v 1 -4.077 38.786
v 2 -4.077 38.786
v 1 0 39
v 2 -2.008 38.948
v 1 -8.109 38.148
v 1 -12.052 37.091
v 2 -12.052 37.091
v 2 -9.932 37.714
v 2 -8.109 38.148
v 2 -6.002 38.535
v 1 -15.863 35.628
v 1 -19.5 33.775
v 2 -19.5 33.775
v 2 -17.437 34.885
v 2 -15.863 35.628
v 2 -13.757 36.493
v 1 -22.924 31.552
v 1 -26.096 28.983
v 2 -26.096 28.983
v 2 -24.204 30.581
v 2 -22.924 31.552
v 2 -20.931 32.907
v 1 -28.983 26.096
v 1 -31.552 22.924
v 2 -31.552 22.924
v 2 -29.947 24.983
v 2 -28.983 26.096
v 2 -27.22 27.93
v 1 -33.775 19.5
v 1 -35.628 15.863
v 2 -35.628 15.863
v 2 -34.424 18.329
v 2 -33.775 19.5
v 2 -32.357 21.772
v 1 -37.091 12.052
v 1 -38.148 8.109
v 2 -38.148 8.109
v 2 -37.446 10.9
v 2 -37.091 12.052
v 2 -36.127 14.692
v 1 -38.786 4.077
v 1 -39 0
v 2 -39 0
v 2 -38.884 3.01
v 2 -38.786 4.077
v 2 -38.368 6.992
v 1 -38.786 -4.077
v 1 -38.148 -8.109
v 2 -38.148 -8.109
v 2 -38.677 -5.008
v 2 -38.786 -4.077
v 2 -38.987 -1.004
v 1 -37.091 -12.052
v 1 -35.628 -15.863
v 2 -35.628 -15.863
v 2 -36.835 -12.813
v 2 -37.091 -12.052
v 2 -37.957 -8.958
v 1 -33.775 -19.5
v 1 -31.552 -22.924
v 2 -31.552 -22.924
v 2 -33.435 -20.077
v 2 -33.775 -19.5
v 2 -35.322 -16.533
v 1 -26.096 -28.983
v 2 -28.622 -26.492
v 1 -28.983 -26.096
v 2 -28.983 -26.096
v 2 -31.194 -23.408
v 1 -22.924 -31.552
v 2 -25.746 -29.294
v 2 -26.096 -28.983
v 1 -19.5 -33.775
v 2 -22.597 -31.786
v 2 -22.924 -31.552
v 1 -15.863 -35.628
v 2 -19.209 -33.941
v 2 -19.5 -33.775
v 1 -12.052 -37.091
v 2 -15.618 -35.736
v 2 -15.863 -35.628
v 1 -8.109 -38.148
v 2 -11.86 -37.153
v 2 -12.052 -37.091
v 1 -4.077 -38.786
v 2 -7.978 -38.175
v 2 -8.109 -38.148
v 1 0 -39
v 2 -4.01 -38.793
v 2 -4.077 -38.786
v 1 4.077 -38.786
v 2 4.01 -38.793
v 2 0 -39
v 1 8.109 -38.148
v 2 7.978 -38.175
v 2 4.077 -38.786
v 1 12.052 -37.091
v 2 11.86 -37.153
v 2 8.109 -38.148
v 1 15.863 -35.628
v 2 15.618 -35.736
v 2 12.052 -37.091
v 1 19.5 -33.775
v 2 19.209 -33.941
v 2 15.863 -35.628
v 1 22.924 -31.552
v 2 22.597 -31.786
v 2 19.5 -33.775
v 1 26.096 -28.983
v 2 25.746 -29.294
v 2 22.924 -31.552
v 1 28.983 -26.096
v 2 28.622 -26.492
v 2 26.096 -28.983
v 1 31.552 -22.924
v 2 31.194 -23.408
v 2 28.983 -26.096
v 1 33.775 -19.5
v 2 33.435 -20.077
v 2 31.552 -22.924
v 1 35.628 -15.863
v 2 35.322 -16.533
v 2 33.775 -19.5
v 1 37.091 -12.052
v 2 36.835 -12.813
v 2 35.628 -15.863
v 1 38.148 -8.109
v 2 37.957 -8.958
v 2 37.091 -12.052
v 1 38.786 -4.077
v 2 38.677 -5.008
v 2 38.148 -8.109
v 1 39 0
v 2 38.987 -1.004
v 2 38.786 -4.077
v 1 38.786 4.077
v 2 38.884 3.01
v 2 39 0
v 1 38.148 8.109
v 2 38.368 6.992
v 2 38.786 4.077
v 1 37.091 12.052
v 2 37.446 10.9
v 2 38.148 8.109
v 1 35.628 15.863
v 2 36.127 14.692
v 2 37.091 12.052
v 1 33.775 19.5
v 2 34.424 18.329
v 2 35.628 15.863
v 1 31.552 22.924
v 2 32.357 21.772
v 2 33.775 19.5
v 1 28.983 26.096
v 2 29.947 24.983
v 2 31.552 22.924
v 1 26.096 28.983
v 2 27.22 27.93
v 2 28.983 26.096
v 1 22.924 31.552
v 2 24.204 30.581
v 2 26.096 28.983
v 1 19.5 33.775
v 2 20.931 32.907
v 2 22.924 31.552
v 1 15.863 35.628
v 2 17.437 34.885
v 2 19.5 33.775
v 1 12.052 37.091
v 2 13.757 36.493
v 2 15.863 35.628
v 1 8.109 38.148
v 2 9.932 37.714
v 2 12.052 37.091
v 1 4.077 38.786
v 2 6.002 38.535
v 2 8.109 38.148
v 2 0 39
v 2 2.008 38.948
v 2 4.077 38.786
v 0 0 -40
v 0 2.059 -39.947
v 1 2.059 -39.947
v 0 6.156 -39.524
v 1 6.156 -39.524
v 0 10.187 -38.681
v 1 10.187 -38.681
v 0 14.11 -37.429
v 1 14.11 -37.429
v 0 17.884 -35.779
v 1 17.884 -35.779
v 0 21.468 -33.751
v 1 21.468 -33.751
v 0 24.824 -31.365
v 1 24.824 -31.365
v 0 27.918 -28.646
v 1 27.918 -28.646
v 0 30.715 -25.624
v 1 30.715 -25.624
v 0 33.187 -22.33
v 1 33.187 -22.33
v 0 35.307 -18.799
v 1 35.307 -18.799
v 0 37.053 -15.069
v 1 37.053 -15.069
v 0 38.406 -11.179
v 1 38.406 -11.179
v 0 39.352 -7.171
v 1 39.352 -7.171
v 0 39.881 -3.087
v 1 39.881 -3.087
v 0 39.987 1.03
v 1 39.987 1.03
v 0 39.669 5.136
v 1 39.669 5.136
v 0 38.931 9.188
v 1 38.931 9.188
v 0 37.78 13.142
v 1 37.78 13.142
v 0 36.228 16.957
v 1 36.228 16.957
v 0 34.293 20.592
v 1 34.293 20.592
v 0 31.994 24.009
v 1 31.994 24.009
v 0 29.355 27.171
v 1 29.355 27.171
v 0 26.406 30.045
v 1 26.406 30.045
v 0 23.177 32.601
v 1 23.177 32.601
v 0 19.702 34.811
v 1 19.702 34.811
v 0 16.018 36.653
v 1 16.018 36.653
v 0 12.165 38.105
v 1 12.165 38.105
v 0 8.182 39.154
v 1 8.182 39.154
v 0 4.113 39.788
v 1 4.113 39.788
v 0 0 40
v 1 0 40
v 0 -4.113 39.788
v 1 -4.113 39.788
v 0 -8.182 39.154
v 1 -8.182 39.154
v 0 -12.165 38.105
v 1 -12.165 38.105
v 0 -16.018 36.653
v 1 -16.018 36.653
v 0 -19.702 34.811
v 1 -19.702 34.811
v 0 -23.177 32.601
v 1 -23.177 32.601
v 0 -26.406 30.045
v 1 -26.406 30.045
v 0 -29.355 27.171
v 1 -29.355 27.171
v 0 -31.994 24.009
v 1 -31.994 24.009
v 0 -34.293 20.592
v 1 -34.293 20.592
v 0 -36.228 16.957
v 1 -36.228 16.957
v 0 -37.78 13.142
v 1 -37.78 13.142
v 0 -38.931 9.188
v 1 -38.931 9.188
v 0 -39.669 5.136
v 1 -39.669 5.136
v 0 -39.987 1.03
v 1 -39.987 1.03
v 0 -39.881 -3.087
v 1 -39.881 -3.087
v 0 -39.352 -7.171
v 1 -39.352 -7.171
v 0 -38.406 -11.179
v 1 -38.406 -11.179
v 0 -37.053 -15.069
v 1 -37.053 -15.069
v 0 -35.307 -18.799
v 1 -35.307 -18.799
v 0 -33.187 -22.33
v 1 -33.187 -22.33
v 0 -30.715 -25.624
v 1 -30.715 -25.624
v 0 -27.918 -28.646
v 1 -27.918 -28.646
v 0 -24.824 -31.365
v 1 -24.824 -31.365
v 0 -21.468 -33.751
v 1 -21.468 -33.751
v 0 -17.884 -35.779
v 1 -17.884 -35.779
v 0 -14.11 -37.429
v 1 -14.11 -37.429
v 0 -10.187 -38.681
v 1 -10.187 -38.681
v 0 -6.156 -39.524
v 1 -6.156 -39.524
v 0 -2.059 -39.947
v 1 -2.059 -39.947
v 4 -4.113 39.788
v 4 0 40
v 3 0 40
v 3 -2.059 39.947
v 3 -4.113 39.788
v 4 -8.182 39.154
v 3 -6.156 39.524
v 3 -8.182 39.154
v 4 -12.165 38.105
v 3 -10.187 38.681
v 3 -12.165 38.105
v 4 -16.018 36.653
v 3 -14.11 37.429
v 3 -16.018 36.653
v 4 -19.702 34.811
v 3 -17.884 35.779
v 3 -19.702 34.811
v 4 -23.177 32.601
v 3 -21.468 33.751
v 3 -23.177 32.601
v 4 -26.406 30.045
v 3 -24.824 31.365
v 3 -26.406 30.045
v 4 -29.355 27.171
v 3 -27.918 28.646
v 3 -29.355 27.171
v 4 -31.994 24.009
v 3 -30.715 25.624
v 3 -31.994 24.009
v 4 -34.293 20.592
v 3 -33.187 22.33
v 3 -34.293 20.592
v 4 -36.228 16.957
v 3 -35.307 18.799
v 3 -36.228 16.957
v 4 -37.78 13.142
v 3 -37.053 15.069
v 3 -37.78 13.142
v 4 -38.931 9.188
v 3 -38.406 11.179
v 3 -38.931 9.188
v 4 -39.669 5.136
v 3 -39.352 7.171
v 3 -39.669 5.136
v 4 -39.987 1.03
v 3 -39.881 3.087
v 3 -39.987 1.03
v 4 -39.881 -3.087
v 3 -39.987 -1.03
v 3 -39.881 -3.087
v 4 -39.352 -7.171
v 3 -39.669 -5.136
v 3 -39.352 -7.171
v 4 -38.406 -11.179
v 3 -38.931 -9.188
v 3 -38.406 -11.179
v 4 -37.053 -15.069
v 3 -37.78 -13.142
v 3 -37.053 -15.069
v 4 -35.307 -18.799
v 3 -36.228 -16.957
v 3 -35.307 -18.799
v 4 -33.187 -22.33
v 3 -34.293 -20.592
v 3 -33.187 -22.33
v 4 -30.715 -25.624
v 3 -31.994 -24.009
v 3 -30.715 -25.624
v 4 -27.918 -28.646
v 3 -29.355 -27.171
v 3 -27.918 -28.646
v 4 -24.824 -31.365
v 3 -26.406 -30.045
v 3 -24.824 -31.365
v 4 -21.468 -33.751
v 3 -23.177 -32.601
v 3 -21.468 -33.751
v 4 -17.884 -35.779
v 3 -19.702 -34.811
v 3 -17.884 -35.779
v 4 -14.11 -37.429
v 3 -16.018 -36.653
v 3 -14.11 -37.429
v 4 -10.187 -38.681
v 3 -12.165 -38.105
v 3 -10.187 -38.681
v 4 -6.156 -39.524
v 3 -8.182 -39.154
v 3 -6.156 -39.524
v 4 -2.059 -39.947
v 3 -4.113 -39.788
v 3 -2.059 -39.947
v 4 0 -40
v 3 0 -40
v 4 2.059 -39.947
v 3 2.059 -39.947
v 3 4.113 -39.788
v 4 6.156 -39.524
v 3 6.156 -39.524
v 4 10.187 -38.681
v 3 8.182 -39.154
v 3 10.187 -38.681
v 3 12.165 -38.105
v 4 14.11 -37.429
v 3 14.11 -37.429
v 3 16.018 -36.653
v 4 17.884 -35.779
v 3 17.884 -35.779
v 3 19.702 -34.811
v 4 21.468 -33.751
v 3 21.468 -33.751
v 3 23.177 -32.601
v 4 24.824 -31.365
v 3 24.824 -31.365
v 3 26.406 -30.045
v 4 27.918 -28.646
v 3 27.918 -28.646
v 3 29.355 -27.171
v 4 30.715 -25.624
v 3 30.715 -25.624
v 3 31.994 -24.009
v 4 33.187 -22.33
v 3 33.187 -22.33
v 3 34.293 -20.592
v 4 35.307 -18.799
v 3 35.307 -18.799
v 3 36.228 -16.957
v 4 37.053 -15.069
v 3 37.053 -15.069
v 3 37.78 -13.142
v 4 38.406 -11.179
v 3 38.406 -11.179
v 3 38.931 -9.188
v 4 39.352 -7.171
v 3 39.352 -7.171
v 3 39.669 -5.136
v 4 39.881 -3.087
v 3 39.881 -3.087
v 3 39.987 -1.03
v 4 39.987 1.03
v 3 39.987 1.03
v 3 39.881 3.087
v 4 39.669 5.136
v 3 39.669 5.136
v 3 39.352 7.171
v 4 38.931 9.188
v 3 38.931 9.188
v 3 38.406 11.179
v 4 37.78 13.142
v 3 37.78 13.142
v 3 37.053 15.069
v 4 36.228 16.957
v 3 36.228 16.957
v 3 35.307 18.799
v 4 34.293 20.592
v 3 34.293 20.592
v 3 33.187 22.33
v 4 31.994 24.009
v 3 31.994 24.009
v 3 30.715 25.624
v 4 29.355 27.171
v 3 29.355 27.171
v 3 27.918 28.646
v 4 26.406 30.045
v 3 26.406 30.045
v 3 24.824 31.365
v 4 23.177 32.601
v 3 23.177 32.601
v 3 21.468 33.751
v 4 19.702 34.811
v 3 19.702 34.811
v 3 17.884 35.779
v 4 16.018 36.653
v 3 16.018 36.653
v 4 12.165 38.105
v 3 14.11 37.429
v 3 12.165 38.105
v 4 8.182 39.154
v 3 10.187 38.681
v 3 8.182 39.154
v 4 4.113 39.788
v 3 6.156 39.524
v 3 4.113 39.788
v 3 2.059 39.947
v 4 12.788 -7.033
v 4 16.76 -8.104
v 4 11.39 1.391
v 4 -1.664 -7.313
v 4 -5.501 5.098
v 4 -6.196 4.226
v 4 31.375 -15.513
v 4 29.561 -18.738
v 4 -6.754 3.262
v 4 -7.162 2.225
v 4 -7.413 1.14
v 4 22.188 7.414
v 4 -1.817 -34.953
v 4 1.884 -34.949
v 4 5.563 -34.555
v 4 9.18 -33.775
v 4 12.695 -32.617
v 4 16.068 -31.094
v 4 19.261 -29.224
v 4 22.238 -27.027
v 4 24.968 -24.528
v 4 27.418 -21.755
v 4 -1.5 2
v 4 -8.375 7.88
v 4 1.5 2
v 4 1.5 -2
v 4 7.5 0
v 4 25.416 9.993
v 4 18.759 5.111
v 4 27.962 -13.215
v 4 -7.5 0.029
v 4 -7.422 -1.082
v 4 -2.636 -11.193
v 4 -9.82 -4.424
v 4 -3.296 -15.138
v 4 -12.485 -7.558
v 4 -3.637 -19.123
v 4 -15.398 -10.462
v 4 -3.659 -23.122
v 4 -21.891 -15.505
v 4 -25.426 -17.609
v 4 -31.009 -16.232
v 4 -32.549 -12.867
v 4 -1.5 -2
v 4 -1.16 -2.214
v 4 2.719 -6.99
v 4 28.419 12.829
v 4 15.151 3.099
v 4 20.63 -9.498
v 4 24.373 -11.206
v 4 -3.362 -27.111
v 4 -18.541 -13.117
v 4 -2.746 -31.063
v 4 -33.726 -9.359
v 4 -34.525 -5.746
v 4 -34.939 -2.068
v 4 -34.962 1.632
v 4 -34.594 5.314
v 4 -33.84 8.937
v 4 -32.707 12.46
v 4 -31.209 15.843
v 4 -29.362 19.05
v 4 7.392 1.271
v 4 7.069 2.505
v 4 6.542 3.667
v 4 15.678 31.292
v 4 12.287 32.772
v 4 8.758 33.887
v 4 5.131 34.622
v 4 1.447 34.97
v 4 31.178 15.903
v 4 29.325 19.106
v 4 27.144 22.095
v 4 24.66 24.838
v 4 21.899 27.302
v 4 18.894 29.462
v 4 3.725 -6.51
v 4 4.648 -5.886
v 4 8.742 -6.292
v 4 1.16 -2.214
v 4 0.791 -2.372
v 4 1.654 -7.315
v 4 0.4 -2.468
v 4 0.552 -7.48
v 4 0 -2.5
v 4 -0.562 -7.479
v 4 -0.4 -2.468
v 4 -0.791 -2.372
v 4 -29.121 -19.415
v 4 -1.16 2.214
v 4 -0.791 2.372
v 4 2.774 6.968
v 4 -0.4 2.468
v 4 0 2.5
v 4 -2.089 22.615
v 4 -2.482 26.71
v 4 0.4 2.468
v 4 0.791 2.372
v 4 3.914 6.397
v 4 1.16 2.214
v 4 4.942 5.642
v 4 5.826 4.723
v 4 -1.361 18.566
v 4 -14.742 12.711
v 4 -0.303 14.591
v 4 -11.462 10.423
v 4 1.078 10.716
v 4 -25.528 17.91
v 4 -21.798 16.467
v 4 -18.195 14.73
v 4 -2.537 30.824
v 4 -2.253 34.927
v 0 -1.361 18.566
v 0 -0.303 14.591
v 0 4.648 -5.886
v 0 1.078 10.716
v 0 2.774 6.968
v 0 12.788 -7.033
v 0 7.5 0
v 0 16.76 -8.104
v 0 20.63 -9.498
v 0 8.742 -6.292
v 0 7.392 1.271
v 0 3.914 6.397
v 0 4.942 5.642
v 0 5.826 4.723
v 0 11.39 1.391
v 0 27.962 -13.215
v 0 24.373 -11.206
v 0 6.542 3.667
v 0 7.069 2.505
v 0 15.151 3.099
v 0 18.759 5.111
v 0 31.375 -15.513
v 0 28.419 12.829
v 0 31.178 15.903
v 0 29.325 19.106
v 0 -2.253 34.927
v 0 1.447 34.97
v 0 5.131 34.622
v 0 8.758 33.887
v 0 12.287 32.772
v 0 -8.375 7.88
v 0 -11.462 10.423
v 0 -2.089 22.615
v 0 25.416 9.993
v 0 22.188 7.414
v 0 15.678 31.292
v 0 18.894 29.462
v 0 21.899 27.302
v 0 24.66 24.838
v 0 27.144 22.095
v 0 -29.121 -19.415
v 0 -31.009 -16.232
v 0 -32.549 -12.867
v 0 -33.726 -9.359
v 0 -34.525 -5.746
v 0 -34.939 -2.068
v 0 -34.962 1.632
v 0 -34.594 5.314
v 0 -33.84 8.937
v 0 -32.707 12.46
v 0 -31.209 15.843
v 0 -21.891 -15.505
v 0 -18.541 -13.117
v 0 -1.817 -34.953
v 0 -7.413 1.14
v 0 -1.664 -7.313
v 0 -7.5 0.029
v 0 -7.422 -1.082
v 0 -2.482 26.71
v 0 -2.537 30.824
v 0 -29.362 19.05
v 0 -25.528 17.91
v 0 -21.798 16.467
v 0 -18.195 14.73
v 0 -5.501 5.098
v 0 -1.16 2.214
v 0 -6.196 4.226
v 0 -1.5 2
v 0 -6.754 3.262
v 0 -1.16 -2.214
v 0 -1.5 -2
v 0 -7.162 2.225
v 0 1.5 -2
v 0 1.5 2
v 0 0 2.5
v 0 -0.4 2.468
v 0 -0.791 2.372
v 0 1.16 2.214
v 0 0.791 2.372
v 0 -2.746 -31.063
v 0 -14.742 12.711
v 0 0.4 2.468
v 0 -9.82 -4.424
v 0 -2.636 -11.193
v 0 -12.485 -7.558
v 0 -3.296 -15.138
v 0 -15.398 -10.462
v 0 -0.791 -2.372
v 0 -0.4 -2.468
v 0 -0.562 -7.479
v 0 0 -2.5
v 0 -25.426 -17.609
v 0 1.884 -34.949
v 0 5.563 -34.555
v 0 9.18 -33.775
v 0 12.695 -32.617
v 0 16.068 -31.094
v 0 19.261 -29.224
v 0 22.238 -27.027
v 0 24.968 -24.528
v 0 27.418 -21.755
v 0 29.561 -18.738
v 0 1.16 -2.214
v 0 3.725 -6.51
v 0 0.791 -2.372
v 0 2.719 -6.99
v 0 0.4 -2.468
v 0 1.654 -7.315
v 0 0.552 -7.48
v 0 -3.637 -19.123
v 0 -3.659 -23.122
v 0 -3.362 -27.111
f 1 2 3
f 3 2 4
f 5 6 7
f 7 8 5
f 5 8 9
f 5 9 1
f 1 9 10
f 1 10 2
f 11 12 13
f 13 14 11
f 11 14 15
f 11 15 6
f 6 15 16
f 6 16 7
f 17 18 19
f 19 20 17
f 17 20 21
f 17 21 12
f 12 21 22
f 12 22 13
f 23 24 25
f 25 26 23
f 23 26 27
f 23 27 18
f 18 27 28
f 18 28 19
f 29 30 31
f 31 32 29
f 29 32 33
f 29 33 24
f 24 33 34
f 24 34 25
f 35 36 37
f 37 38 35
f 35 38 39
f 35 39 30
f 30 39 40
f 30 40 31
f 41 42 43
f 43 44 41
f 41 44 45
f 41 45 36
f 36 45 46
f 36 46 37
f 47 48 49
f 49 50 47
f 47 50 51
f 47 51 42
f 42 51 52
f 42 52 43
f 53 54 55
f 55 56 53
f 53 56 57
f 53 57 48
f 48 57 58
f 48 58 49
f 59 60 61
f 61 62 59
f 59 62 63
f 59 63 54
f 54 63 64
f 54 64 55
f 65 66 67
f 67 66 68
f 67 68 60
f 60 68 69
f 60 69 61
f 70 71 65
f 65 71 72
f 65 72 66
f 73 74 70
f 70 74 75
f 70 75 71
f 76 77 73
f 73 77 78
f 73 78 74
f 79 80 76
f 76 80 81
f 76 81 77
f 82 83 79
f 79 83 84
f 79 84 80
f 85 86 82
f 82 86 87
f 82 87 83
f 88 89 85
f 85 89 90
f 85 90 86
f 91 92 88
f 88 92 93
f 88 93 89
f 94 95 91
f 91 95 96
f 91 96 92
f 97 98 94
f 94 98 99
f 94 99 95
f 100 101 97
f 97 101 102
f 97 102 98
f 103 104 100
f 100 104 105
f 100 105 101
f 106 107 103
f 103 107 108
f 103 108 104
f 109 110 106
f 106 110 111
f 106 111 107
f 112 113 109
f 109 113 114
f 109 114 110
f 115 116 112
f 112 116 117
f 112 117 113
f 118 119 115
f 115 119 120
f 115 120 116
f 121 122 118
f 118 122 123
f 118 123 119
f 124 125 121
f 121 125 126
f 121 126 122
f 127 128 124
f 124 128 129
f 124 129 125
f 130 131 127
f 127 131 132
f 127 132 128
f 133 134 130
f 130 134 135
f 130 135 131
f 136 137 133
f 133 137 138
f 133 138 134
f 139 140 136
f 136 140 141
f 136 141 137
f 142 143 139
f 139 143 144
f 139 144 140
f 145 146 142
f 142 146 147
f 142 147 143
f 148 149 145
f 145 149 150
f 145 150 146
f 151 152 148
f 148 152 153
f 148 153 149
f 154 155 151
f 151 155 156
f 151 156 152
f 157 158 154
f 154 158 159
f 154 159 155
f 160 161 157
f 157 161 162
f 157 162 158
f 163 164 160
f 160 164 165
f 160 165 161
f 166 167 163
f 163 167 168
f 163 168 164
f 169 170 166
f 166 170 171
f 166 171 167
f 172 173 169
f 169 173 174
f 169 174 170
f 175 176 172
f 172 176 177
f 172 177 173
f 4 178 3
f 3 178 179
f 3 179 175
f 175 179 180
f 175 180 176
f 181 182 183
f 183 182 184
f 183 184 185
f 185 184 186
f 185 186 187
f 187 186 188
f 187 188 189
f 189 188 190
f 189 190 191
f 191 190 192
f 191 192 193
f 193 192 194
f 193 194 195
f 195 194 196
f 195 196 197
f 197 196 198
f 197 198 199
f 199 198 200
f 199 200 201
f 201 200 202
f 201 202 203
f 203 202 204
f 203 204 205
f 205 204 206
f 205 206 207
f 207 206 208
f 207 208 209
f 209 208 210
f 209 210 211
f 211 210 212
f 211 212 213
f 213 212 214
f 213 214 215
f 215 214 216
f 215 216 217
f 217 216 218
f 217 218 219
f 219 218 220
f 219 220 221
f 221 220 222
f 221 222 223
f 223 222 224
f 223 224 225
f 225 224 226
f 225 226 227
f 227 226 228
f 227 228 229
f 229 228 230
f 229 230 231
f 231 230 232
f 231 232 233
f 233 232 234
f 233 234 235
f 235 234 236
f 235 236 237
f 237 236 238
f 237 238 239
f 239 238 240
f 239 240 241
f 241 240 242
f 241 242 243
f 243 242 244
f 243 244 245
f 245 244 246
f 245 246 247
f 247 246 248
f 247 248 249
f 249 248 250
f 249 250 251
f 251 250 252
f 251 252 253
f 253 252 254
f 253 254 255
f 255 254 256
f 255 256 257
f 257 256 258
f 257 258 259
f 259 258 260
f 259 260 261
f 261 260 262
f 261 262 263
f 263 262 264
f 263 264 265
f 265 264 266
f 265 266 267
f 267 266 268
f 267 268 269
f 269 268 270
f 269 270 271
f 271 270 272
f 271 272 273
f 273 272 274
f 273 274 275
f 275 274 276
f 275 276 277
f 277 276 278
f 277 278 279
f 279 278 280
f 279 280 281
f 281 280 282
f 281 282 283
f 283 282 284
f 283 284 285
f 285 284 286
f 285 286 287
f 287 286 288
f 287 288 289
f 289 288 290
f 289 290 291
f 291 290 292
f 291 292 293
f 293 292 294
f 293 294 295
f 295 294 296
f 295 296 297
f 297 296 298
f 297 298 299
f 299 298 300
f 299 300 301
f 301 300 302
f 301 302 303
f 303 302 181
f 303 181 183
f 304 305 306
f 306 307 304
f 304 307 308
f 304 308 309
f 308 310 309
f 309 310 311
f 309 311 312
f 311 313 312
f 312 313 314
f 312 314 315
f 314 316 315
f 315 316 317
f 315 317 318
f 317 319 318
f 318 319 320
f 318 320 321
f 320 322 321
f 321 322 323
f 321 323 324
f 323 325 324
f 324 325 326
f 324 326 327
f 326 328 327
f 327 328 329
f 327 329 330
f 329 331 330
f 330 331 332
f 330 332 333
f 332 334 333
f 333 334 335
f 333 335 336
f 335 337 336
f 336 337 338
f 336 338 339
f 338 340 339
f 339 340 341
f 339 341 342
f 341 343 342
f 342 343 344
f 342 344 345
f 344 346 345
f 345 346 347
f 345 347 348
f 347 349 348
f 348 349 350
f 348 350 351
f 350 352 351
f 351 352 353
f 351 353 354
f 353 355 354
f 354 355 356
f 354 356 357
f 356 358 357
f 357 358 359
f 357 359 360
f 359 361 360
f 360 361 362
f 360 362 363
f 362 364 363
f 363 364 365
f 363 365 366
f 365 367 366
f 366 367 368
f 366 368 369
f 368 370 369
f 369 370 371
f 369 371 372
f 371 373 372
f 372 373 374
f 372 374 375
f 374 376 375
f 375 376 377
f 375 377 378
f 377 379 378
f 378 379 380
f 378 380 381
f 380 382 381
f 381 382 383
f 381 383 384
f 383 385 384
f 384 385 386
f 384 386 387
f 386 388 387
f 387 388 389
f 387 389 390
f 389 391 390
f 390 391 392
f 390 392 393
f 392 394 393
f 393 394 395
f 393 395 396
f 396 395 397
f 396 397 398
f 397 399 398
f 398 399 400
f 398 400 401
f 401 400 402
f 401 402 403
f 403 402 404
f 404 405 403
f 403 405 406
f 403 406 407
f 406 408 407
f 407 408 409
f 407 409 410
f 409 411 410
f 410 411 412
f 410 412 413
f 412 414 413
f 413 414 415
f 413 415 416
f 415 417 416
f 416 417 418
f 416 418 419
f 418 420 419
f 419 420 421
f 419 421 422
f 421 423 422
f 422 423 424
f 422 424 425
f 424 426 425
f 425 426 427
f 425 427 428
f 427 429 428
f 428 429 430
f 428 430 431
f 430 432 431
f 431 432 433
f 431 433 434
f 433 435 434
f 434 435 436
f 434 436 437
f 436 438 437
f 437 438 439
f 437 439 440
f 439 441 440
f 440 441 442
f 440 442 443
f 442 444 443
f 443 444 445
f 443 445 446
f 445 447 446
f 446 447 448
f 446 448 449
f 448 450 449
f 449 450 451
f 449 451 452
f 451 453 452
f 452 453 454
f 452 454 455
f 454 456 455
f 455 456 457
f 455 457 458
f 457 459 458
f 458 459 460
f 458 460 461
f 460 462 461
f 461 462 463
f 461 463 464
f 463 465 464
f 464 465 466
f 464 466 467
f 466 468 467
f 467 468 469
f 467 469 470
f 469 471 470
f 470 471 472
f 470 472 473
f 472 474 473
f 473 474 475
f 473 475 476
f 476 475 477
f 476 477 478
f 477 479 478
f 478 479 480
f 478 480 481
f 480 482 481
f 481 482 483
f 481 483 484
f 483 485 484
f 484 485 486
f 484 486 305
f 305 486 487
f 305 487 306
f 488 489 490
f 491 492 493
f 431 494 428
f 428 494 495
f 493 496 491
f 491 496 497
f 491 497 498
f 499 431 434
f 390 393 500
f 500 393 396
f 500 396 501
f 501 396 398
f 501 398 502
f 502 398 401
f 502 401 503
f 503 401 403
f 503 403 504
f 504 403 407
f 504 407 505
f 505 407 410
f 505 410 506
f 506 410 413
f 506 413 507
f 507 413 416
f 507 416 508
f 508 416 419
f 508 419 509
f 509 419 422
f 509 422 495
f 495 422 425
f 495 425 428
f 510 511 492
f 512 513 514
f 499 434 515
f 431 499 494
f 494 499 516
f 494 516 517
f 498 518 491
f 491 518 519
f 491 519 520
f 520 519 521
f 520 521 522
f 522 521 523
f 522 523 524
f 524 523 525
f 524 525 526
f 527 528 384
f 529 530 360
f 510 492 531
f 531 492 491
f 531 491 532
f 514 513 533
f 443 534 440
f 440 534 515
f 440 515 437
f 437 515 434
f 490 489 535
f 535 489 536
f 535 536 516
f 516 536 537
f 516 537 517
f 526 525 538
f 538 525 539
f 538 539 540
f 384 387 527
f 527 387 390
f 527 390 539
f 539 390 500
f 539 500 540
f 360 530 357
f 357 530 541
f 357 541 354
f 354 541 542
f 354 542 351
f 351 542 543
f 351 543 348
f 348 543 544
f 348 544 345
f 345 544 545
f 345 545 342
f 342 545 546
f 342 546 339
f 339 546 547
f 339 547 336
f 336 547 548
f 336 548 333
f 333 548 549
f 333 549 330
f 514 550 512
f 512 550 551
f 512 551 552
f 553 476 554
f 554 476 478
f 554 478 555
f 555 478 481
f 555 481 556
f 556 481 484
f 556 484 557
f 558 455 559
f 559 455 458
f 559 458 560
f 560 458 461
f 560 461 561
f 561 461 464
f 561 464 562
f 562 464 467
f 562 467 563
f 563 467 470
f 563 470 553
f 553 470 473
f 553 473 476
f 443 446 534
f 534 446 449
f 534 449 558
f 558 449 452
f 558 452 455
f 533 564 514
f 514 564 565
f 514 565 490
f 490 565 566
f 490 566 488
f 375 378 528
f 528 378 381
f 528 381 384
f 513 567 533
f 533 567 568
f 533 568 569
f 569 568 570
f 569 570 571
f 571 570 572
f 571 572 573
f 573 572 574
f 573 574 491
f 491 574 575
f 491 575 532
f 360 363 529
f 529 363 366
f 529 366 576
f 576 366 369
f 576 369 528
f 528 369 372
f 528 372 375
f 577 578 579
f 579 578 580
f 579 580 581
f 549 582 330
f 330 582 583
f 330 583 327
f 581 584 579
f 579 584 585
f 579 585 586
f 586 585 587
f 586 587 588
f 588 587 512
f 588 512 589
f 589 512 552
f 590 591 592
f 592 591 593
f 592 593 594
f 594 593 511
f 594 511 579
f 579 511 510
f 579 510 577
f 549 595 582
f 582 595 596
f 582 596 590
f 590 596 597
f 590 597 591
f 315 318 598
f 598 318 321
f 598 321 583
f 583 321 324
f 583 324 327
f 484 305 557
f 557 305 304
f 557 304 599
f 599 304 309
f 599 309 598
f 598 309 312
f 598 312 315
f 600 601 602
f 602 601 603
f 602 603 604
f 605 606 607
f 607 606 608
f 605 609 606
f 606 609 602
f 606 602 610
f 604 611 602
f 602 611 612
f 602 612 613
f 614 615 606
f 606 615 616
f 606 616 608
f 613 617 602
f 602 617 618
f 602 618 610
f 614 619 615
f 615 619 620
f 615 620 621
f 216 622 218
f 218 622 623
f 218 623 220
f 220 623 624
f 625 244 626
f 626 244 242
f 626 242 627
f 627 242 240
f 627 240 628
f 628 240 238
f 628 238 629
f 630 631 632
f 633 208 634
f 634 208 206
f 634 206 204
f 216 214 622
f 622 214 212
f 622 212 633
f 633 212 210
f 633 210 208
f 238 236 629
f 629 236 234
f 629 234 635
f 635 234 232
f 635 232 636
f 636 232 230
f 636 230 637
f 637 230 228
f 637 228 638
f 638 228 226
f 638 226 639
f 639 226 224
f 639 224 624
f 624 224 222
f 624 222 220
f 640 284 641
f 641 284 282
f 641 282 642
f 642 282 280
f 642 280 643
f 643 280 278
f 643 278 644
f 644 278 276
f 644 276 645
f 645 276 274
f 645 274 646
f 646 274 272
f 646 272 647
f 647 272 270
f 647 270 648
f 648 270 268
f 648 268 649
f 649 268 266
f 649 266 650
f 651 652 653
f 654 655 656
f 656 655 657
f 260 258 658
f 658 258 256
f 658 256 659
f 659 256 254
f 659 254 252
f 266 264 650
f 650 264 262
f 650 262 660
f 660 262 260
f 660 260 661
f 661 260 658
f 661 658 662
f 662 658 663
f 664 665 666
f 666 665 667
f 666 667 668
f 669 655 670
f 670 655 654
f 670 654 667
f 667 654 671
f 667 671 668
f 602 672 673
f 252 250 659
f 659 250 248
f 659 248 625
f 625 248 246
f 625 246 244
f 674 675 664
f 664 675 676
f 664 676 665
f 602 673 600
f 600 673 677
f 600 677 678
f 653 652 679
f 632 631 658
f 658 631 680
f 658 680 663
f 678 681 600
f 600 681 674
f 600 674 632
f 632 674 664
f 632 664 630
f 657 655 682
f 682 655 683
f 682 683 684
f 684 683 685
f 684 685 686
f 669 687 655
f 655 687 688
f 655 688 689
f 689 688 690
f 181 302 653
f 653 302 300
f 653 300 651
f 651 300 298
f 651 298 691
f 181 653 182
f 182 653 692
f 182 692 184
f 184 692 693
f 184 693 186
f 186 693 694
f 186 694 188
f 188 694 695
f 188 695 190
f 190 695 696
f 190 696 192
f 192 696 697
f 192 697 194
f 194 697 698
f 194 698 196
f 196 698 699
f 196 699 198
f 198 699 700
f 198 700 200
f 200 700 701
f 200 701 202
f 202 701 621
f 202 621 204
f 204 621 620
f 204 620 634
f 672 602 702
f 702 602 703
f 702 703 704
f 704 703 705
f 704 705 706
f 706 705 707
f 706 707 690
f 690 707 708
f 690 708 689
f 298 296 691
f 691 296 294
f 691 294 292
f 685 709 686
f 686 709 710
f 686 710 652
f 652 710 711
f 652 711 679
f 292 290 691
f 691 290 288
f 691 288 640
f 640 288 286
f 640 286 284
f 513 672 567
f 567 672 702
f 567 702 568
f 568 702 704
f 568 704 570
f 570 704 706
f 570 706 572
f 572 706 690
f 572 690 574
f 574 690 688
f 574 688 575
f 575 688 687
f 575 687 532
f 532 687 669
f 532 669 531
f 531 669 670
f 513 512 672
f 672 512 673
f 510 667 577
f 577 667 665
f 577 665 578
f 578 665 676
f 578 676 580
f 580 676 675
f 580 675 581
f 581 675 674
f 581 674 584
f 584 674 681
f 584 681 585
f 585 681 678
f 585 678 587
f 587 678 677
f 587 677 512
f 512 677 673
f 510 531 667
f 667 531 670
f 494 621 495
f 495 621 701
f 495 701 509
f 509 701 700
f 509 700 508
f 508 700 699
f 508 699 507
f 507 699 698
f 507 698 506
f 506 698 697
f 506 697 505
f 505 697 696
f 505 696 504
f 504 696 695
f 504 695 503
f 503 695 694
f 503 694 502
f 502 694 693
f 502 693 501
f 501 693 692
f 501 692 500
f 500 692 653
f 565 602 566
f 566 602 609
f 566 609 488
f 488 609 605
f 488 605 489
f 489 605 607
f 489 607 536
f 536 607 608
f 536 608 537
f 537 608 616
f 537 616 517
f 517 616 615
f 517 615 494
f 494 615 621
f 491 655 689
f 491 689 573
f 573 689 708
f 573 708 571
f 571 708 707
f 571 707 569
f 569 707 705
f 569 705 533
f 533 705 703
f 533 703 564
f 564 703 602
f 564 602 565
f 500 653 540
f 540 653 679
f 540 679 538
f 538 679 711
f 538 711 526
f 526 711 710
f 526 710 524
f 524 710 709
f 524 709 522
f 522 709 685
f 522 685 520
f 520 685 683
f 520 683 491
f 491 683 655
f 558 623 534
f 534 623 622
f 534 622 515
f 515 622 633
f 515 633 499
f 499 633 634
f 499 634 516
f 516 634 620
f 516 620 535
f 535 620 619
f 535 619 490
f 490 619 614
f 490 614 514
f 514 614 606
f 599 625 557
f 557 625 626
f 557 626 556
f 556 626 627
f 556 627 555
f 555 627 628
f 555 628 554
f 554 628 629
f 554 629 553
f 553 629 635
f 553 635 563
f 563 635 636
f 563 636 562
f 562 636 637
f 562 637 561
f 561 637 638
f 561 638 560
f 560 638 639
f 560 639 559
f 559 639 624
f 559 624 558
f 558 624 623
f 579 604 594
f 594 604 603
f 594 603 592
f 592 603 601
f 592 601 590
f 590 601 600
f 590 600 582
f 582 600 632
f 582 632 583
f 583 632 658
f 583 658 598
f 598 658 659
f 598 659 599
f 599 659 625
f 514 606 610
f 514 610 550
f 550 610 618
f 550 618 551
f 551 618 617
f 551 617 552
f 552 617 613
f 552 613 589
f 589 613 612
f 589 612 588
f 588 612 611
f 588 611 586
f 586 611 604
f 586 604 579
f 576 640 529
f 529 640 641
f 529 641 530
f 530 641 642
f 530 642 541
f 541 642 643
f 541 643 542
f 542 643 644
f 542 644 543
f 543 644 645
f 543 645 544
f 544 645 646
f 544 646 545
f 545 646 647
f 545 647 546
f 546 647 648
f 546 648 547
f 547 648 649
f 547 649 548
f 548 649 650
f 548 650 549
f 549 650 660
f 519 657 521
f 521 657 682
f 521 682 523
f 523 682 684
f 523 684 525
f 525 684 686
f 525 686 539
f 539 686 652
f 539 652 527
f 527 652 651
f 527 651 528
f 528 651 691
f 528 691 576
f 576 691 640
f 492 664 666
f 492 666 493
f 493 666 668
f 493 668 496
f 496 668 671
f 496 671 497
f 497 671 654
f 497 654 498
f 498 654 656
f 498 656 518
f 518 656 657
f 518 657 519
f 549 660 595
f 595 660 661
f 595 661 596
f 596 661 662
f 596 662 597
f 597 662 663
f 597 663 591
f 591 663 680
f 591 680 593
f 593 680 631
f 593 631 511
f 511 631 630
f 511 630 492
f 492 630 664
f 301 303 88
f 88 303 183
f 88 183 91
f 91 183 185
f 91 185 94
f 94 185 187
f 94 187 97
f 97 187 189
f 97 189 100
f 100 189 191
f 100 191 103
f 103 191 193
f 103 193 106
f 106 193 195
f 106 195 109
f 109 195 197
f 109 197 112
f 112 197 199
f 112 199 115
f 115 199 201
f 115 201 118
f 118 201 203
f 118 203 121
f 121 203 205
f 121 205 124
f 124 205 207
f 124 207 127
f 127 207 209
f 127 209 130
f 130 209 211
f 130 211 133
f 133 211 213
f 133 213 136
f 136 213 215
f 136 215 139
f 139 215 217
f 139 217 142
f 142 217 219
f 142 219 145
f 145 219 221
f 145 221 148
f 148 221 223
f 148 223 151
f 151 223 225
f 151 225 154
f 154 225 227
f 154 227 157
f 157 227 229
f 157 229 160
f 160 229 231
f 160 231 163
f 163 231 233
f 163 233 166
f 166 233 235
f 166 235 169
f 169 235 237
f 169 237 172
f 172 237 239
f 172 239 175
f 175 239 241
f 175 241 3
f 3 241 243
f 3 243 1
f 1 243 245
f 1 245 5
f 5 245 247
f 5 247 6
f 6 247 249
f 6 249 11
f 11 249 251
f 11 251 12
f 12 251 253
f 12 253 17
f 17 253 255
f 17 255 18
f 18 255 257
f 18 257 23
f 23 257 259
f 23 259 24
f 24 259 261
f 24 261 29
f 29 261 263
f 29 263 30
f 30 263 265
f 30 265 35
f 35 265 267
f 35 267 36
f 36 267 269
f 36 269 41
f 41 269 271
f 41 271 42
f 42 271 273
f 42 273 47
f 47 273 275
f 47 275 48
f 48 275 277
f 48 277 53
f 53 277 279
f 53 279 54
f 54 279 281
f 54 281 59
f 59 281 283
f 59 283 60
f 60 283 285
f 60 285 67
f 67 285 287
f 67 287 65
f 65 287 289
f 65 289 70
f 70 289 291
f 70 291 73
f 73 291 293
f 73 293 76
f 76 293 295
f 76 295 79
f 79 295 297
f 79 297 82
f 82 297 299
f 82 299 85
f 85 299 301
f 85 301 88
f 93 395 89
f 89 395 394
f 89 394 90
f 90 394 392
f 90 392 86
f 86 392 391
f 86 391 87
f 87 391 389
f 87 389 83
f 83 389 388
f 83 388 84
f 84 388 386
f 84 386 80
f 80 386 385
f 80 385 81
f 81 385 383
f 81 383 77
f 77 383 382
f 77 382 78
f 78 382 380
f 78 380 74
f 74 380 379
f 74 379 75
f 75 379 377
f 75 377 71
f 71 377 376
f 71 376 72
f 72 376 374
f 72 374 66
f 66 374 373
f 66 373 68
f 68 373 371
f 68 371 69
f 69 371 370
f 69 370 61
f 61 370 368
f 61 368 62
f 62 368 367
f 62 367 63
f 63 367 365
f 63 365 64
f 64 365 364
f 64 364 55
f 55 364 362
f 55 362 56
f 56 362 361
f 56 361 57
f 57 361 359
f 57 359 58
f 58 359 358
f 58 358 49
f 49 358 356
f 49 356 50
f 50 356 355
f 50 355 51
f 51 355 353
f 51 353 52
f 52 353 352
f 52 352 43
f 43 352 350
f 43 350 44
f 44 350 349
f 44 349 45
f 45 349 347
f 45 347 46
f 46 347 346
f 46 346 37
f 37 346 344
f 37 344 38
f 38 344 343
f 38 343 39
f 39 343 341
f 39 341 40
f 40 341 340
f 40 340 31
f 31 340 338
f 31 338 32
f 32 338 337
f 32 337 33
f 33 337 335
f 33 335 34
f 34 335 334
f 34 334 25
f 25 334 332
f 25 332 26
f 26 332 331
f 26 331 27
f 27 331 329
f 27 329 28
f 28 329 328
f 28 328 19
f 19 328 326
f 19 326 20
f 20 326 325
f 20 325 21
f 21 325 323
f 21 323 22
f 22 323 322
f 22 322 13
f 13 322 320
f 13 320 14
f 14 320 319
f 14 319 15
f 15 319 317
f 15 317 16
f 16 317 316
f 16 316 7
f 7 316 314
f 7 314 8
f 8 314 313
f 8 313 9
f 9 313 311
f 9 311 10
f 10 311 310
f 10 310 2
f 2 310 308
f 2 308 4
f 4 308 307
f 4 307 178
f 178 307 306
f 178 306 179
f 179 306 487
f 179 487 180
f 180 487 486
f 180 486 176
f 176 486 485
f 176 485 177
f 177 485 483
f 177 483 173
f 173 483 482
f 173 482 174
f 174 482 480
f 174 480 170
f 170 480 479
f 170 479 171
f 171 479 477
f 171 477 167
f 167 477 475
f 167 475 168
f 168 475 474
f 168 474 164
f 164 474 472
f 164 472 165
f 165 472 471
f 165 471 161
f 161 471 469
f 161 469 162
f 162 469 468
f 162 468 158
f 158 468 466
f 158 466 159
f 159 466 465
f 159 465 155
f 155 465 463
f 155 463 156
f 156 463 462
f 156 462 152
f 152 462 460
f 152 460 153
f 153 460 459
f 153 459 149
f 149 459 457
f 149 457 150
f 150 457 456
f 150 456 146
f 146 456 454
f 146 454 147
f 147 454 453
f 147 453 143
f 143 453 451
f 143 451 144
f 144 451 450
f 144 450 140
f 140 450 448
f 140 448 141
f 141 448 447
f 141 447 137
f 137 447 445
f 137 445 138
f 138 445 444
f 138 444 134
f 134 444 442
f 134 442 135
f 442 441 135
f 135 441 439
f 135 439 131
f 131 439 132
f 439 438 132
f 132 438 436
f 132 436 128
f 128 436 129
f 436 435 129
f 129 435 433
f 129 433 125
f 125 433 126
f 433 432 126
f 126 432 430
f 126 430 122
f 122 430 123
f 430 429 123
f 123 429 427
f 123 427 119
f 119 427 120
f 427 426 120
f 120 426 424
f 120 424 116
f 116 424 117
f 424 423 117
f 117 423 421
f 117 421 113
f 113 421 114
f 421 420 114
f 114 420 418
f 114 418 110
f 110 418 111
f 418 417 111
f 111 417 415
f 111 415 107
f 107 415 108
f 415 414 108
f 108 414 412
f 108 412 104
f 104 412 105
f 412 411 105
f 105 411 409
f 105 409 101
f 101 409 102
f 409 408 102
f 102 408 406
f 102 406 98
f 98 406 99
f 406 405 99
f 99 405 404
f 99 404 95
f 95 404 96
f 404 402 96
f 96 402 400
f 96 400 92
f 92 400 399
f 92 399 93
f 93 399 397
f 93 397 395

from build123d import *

# Parameters (mm, degrees)
SKETCH2_R           = 40
BOSS_EXTRUDE1_DEPTH = 4
SKETCH3_W           = 2
SKETCH3_H           = 1


with BuildPart() as part:
    # Sketch2 → Boss-Extrude1 (new body)
    with BuildSketch(Plane(origin=(0, 0, 0), x_dir=(0, 0, -1), z_dir=(1, 0, 0))):
        Circle(SKETCH2_R)
        with BuildLine():
            Line((-2, 1.5), (2, 1.5))
            ThreePointArc((2, 1.5), (2.5, 0), (2, -1.5))
            Line((2, -1.5), (-2, -1.5))
            ThreePointArc((-2, -1.5), (-2.5, 0), (-2, 1.5))
        make_face(mode=Mode.SUBTRACT)
        with BuildLine():
            ThreePointArc((-15.90290373, 31.178480607), (-30.419515024, 17.310491203), (-34.927407255, -2.253047362))
            ThreePointArc((-34.927407255, -2.253047362), (-20.583361548, -1.767102241), (-6.968299733, 2.77358952))
            ThreePointArc((-6.968299733, 2.77358952), (-4.209992791, 6.206928443), (0, 7.5))
            ThreePointArc((0, 7.5), (-6.227172355, 20.497298183), (-15.90290373, 31.178480607))
        make_face(mode=Mode.SUBTRACT)
        with BuildLine():
            ThreePointArc((5.886148851, 4.64792983), (8.761325342, 18.709265117), (15.512507376, 31.374545653))
            ThreePointArc((15.512507376, 31.374545653), (30.201082646, 17.68882718), (34.952808122, -1.81692168))
            ThreePointArc((34.952808122, -1.81692168), (21.122165812, -3.688321149), (7.313076649, -1.664004186))
            ThreePointArc((7.313076649, -1.664004186), (7.315395834, 1.653778642), (5.886148851, 4.64792983))
        make_face(mode=Mode.SUBTRACT)
        with BuildLine():
            ThreePointArc((1.082150882, -7.42151935), (11.822036206, -16.942162875), (19.414899879, -29.12149829))
            ThreePointArc((19.414899879, -29.12149829), (0.218432378, -34.999318383), (-19.049904392, -29.361558927))
            ThreePointArc((-19.049904392, -29.361558927), (-13.755262718, -16.448171602), (-5.097608221, -5.501308065))
            ThreePointArc((-5.097608221, -5.501308065), (-2.2254836, -7.162207952), (1.082150882, -7.42151935))
        make_face(mode=Mode.SUBTRACT)
    extrude(amount=BOSS_EXTRUDE1_DEPTH)

    # Sketch3 → Cut-Revolve1 (revolve, cut)
    with BuildSketch(Plane.XY):
        with Locations((2, 39.5)):
            Rectangle(SKETCH3_W, SKETCH3_H)
    revolve(axis=Axis((-1.599073018, 0, 0), (1, 0, 0)), mode=Mode.SUBTRACT)

    # Sketch4 → Revolve1 (revolve)
    with BuildSketch(Plane.XY):
        Polygon((3, 40), (2, 39), (3, 39), align=None)
    revolve(axis=Axis((0, 0, 0), (1, 0, 0)))


solid = part.part
